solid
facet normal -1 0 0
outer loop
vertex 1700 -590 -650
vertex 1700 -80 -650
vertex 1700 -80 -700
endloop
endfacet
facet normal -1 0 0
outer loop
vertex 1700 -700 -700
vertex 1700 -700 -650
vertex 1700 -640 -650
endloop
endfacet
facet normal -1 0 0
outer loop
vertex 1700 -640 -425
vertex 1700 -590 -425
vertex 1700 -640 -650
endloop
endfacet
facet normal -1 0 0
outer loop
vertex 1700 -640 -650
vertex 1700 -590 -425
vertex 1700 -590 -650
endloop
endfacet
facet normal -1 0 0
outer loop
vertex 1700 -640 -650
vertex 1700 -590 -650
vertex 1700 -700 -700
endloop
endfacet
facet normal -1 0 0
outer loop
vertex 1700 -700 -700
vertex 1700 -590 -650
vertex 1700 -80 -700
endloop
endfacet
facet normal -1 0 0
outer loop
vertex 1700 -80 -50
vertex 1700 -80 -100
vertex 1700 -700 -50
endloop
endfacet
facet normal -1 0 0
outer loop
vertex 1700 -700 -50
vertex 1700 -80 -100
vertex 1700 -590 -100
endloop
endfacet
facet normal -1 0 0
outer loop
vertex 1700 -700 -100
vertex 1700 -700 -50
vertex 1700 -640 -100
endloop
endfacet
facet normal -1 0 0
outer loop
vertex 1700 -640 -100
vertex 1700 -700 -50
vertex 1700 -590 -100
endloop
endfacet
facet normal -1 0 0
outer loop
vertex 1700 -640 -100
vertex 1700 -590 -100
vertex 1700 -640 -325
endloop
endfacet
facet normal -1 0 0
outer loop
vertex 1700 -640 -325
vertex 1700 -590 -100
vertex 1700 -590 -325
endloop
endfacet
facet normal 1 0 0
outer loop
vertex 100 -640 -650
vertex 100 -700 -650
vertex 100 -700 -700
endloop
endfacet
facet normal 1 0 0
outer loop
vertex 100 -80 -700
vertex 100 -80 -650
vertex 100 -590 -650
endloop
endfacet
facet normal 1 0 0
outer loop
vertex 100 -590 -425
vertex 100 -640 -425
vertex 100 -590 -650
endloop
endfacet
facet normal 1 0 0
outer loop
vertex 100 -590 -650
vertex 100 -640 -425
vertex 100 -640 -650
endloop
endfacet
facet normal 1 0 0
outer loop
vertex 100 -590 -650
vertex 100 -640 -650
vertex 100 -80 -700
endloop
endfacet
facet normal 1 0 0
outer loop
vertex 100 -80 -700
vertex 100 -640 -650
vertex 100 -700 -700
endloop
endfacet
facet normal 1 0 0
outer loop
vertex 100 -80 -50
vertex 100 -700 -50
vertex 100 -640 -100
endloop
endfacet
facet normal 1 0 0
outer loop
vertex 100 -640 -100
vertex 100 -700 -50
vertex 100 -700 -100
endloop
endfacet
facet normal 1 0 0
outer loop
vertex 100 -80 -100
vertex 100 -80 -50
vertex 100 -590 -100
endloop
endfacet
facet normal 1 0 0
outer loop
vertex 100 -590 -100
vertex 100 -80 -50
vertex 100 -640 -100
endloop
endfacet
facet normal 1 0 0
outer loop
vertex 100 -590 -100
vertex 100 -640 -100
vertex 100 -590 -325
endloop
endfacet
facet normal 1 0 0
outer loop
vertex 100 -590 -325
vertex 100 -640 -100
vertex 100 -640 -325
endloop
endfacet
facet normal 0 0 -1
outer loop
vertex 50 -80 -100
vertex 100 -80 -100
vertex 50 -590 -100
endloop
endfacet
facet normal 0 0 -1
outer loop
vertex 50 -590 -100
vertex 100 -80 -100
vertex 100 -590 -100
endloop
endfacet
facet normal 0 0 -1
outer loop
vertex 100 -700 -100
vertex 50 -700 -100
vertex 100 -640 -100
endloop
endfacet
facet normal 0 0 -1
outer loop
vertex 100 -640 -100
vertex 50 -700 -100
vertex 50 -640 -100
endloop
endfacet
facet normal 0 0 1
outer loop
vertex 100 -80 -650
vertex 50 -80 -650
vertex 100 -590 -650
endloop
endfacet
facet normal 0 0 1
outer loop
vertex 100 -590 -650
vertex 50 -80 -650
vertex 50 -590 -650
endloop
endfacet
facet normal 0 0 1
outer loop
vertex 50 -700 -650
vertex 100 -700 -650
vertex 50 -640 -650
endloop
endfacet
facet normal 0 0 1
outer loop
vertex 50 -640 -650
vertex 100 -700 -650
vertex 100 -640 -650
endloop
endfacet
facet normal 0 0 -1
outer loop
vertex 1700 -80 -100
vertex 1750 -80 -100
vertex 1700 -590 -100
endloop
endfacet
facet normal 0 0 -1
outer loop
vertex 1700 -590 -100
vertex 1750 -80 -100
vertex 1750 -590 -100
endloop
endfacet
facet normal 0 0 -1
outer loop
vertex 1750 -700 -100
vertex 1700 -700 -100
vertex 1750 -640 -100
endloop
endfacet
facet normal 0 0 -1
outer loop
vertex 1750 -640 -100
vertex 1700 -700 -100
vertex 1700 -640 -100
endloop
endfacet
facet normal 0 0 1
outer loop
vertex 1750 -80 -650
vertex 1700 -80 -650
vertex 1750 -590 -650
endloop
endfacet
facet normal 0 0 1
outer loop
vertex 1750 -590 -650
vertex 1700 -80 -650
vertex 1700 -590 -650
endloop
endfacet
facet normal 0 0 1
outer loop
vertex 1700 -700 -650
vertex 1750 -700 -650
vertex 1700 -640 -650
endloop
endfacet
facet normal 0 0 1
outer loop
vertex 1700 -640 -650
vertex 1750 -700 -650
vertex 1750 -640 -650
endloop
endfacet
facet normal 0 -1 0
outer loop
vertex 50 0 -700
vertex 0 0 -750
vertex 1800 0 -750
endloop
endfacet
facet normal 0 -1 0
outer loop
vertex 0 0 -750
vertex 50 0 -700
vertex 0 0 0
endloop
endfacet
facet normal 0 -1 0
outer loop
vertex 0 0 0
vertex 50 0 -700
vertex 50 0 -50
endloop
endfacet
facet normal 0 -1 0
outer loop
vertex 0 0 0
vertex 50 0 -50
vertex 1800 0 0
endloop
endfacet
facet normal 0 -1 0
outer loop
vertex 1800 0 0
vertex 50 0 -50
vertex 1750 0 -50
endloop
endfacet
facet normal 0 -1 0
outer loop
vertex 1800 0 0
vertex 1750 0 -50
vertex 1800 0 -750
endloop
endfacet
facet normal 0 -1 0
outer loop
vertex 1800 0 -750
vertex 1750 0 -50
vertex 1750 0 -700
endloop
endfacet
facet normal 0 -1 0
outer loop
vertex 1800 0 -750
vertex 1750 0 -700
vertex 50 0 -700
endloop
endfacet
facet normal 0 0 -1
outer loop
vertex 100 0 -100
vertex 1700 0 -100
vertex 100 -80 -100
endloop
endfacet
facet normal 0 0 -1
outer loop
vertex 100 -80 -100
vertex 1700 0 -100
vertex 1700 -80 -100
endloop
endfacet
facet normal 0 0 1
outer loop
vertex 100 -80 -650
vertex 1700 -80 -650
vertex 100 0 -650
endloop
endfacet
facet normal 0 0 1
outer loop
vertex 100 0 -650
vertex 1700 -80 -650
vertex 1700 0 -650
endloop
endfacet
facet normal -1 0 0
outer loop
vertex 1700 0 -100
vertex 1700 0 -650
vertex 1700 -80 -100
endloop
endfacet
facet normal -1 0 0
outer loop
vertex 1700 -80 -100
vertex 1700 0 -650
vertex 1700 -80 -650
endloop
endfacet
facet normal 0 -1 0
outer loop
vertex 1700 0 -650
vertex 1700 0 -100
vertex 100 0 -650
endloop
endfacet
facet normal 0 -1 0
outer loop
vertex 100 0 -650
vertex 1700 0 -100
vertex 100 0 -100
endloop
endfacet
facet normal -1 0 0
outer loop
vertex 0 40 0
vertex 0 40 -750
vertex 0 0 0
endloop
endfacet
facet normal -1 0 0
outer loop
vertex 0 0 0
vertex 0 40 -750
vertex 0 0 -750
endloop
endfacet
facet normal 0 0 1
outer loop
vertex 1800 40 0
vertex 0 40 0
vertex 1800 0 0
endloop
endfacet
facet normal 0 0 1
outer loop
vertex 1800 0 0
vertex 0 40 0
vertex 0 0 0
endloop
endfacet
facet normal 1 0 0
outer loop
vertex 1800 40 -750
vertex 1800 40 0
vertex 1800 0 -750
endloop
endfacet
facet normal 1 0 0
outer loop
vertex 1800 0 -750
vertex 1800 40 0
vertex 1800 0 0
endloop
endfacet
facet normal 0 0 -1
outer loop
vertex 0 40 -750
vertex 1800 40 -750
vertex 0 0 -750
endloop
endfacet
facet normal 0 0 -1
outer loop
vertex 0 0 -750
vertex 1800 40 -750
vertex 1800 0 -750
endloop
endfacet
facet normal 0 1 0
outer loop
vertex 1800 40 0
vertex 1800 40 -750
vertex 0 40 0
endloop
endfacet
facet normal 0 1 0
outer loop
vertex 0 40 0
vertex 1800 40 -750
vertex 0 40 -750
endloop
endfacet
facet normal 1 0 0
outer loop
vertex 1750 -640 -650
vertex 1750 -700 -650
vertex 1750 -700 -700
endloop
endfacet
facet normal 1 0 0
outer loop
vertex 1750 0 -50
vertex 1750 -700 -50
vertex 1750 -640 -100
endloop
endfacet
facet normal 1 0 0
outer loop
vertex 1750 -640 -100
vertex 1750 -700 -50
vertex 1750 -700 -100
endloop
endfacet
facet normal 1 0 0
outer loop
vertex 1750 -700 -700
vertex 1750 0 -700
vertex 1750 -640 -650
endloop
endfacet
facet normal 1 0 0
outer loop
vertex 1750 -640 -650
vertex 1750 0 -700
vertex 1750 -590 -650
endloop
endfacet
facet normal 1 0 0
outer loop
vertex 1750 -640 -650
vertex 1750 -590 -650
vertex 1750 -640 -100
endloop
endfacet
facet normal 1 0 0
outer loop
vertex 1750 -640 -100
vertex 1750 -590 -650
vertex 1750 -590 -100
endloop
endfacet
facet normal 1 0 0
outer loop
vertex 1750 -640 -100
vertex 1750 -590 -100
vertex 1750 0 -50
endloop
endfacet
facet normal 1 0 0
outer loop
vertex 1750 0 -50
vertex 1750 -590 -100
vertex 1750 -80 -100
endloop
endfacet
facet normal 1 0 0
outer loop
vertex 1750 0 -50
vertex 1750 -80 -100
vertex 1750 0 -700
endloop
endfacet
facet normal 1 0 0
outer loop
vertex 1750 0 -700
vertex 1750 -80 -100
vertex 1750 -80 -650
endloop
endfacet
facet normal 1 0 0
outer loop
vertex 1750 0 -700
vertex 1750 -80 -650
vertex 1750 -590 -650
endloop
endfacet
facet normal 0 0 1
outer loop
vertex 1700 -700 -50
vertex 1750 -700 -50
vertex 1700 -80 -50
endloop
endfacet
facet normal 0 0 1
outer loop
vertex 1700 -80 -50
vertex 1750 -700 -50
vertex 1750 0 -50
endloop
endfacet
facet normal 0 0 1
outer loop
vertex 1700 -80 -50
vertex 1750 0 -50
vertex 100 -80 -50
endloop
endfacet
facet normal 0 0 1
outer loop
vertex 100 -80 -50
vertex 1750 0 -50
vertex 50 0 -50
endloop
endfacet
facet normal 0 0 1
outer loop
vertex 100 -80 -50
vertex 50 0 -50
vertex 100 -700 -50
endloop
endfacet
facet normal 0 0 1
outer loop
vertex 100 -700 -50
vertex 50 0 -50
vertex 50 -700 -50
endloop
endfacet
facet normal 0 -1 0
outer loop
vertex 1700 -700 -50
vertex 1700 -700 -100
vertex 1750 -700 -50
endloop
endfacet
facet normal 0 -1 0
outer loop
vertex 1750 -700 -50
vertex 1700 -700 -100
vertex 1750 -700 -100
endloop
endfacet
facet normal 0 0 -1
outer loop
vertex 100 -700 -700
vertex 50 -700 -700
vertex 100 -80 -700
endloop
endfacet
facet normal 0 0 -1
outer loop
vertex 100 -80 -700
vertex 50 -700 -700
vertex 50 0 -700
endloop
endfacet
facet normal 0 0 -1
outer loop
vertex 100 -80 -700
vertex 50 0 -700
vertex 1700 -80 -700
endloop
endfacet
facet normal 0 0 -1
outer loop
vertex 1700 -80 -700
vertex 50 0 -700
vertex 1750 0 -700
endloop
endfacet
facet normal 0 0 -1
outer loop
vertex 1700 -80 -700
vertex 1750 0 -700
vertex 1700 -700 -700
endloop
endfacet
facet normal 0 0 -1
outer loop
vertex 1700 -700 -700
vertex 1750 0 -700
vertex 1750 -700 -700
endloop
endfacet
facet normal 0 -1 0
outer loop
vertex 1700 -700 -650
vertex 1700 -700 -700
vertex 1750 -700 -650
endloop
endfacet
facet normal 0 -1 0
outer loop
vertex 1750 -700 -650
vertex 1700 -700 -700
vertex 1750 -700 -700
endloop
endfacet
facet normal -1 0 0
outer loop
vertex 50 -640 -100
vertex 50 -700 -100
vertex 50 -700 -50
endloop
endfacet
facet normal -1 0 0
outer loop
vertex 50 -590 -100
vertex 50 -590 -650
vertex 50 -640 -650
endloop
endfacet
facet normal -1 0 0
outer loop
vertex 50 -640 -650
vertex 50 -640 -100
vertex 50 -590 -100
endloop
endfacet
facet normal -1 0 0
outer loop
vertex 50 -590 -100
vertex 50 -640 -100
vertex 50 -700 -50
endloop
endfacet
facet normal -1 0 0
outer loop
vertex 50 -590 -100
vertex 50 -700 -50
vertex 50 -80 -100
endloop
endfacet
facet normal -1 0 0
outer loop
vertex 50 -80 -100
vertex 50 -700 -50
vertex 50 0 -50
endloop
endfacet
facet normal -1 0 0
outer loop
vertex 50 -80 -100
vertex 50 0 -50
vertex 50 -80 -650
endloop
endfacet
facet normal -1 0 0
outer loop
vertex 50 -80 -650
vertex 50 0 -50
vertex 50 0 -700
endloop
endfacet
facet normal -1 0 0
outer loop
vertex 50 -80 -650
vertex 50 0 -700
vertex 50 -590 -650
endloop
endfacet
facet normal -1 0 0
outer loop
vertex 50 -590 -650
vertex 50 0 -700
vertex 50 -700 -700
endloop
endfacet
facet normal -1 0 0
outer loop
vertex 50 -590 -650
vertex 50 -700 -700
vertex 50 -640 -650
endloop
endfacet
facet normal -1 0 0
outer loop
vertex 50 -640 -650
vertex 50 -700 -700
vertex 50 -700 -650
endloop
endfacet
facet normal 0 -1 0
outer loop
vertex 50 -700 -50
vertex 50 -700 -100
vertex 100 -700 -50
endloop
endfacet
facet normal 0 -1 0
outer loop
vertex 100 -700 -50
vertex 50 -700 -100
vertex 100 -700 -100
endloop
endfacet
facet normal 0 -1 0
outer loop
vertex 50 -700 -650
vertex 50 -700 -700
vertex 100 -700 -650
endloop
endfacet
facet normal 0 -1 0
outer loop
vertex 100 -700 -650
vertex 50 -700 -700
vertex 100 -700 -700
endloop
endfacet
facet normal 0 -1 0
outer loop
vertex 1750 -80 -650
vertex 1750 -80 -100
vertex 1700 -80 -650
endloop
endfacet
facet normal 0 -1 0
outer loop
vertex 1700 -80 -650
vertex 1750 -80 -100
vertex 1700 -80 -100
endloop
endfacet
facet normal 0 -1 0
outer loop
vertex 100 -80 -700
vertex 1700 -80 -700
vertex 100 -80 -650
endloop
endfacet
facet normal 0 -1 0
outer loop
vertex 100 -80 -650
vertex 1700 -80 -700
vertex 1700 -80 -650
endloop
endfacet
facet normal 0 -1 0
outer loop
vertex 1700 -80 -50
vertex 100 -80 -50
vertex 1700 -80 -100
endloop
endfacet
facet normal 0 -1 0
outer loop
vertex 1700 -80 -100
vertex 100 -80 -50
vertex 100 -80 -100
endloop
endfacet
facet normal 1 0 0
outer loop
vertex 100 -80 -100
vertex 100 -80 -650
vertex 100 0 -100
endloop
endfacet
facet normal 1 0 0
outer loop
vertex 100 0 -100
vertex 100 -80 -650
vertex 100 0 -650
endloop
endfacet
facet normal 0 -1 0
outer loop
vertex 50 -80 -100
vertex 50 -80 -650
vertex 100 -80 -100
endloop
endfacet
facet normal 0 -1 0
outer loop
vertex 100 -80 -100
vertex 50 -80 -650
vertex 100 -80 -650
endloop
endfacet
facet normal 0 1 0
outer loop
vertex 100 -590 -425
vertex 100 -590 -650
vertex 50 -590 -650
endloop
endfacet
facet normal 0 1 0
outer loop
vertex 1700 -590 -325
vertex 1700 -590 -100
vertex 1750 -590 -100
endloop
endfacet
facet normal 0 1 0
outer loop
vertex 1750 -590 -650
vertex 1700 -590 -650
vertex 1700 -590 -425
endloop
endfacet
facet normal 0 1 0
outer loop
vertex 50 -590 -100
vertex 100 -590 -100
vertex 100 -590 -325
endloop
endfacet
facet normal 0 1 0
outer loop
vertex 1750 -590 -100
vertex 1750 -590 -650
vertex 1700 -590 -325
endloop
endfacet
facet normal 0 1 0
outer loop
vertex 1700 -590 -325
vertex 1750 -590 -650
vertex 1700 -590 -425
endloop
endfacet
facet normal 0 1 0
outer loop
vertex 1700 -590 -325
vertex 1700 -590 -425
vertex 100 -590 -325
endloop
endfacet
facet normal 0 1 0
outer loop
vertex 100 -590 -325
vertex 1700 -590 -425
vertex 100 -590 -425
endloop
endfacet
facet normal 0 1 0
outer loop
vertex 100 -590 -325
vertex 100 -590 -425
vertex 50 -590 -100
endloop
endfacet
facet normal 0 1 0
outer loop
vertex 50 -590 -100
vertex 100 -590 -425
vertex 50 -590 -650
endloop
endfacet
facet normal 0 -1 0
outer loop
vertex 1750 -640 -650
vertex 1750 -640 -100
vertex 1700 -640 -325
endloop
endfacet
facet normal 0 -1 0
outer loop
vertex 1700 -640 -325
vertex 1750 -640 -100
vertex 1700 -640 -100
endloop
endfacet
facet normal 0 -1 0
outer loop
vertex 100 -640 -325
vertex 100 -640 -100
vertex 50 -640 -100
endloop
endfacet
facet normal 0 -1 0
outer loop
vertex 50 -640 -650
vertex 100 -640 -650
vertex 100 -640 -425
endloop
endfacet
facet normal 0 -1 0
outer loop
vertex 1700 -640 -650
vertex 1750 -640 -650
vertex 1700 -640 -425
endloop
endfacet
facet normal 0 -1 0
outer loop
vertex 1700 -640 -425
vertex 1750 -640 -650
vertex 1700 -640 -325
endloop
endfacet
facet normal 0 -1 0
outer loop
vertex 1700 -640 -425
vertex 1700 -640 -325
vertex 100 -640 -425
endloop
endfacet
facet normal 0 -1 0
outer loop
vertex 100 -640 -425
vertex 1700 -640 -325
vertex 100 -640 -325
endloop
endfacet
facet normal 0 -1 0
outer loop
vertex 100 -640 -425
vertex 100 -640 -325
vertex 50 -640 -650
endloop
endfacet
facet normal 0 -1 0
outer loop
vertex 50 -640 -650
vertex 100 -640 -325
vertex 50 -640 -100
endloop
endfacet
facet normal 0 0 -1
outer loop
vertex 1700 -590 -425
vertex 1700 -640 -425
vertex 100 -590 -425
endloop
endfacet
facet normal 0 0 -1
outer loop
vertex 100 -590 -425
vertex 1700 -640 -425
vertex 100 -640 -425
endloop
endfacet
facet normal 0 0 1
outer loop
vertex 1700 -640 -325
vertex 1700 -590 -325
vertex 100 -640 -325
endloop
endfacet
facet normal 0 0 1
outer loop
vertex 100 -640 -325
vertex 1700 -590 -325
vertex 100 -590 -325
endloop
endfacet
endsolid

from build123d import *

# Parameters (mm, degrees)
SKETCH_1_W      = 1800
SKETCH_1_H      = 750
EXTRUDE_1_DEPTH = 40
SKETCH_2_W      = 50
SKETCH_2_H      = 50
EXTRUDE_2_DEPTH = 700
SKETCH_3_W      = 50
SKETCH_3_H      = 550
SKETCH_3_W_2    = 1600
SKETCH_3_H_2    = 50
EXTRUDE_3_DEPTH = 80
EXTRUDE_4_REACH = 2039.768
SKETCH_4_W      = 50
SKETCH_4_H      = 50
EXTRUDE_5_REACH = 1987.573
SKETCH_5_W      = 100
SKETCH_5_H      = 50


with BuildPart() as part:
    # ｽｹｯﾁ1 → ﾎﾞｽ - 押し出し1 (new body)
    with BuildSketch(Plane(origin=(0, 0, 0), x_dir=(1, 0, 0), z_dir=(0, 1, 0))):
        with Locations((900, 375)):
            Rectangle(SKETCH_1_W, SKETCH_1_H)
    extrude(amount=EXTRUDE_1_DEPTH)

    # ｽｹｯﾁ2 → ﾎﾞｽ - 押し出し2 (add)
    with BuildSketch(Plane(origin=(0, 0, 0), x_dir=(-1, 0, 0), z_dir=(0, -1, 0))):
        with Locations((-1725, 75)):
            Rectangle(SKETCH_2_W, SKETCH_2_H)
        with Locations((-1725, 675)):
            Rectangle(SKETCH_2_W, SKETCH_2_H)
        with Locations((-75, 75)):
            Rectangle(SKETCH_2_W, SKETCH_2_H)
        with Locations((-75, 675)):
            Rectangle(SKETCH_2_W, SKETCH_2_H)
    extrude(amount=EXTRUDE_2_DEPTH)

    # ｽｹｯﾁ3 → ﾎﾞｽ - 押し出し3 (add)
    with BuildSketch(Plane(origin=(0, 0, 0), x_dir=(-1, 0, 0), z_dir=(0, -1, 0))):
        with Locations((-1725, 375)):
            Rectangle(SKETCH_3_W, SKETCH_3_H)
        with Locations((-900, 675)):
            Rectangle(SKETCH_3_W_2, SKETCH_3_H_2)
        with Locations((-900, 75)):
            Rectangle(SKETCH_3_W_2, SKETCH_3_H_2)
        with Locations((-75, 375)):
            Rectangle(SKETCH_3_W, SKETCH_3_H)
    extrude(amount=EXTRUDE_3_DEPTH)

    # ｽｹｯﾁ4 → ﾎﾞｽ - 押し出し4 (add, up to next)
    with BuildSketch(Plane.XY.offset(-650), mode=Mode.PRIVATE) as extrude_4_sk1:
        with Locations((1725, -615)):
            Rectangle(SKETCH_4_W, SKETCH_4_H)
    extrude_4_tool1 = extrude(extrude_4_sk1.sketch, amount=EXTRUDE_4_REACH, mode=Mode.PRIVATE) - part.part
    # ｽｹｯﾁ4 → ﾎﾞｽ - 押し出し4 (add, up to next)
    with BuildSketch(Plane.XY.offset(-650), mode=Mode.PRIVATE) as extrude_4_sk2:
        with Locations((75, -615)):
            Rectangle(SKETCH_4_W, SKETCH_4_H)
    extrude_4_tool2 = extrude(extrude_4_sk2.sketch, amount=EXTRUDE_4_REACH, mode=Mode.PRIVATE) - part.part
    add(extrude_4_tool1.solids().sort_by_distance((1725, -615, -650))[0])
    add(extrude_4_tool2.solids().sort_by_distance((75, -615, -650))[0])

    # ｽｹｯﾁ5 → ﾎﾞｽ - 押し出し5 (add, up to next)
    with BuildSketch(Plane.ZY.offset(-1700), mode=Mode.PRIVATE) as extrude_5_sk1:
        with Locations((-375, -615)):
            Rectangle(SKETCH_5_W, SKETCH_5_H)
    extrude_5_tool1 = extrude(extrude_5_sk1.sketch, amount=EXTRUDE_5_REACH, mode=Mode.PRIVATE) - part.part
    add(extrude_5_tool1.solids().sort_by_distance((1700, -615, -375))[0])


solid = part.part
